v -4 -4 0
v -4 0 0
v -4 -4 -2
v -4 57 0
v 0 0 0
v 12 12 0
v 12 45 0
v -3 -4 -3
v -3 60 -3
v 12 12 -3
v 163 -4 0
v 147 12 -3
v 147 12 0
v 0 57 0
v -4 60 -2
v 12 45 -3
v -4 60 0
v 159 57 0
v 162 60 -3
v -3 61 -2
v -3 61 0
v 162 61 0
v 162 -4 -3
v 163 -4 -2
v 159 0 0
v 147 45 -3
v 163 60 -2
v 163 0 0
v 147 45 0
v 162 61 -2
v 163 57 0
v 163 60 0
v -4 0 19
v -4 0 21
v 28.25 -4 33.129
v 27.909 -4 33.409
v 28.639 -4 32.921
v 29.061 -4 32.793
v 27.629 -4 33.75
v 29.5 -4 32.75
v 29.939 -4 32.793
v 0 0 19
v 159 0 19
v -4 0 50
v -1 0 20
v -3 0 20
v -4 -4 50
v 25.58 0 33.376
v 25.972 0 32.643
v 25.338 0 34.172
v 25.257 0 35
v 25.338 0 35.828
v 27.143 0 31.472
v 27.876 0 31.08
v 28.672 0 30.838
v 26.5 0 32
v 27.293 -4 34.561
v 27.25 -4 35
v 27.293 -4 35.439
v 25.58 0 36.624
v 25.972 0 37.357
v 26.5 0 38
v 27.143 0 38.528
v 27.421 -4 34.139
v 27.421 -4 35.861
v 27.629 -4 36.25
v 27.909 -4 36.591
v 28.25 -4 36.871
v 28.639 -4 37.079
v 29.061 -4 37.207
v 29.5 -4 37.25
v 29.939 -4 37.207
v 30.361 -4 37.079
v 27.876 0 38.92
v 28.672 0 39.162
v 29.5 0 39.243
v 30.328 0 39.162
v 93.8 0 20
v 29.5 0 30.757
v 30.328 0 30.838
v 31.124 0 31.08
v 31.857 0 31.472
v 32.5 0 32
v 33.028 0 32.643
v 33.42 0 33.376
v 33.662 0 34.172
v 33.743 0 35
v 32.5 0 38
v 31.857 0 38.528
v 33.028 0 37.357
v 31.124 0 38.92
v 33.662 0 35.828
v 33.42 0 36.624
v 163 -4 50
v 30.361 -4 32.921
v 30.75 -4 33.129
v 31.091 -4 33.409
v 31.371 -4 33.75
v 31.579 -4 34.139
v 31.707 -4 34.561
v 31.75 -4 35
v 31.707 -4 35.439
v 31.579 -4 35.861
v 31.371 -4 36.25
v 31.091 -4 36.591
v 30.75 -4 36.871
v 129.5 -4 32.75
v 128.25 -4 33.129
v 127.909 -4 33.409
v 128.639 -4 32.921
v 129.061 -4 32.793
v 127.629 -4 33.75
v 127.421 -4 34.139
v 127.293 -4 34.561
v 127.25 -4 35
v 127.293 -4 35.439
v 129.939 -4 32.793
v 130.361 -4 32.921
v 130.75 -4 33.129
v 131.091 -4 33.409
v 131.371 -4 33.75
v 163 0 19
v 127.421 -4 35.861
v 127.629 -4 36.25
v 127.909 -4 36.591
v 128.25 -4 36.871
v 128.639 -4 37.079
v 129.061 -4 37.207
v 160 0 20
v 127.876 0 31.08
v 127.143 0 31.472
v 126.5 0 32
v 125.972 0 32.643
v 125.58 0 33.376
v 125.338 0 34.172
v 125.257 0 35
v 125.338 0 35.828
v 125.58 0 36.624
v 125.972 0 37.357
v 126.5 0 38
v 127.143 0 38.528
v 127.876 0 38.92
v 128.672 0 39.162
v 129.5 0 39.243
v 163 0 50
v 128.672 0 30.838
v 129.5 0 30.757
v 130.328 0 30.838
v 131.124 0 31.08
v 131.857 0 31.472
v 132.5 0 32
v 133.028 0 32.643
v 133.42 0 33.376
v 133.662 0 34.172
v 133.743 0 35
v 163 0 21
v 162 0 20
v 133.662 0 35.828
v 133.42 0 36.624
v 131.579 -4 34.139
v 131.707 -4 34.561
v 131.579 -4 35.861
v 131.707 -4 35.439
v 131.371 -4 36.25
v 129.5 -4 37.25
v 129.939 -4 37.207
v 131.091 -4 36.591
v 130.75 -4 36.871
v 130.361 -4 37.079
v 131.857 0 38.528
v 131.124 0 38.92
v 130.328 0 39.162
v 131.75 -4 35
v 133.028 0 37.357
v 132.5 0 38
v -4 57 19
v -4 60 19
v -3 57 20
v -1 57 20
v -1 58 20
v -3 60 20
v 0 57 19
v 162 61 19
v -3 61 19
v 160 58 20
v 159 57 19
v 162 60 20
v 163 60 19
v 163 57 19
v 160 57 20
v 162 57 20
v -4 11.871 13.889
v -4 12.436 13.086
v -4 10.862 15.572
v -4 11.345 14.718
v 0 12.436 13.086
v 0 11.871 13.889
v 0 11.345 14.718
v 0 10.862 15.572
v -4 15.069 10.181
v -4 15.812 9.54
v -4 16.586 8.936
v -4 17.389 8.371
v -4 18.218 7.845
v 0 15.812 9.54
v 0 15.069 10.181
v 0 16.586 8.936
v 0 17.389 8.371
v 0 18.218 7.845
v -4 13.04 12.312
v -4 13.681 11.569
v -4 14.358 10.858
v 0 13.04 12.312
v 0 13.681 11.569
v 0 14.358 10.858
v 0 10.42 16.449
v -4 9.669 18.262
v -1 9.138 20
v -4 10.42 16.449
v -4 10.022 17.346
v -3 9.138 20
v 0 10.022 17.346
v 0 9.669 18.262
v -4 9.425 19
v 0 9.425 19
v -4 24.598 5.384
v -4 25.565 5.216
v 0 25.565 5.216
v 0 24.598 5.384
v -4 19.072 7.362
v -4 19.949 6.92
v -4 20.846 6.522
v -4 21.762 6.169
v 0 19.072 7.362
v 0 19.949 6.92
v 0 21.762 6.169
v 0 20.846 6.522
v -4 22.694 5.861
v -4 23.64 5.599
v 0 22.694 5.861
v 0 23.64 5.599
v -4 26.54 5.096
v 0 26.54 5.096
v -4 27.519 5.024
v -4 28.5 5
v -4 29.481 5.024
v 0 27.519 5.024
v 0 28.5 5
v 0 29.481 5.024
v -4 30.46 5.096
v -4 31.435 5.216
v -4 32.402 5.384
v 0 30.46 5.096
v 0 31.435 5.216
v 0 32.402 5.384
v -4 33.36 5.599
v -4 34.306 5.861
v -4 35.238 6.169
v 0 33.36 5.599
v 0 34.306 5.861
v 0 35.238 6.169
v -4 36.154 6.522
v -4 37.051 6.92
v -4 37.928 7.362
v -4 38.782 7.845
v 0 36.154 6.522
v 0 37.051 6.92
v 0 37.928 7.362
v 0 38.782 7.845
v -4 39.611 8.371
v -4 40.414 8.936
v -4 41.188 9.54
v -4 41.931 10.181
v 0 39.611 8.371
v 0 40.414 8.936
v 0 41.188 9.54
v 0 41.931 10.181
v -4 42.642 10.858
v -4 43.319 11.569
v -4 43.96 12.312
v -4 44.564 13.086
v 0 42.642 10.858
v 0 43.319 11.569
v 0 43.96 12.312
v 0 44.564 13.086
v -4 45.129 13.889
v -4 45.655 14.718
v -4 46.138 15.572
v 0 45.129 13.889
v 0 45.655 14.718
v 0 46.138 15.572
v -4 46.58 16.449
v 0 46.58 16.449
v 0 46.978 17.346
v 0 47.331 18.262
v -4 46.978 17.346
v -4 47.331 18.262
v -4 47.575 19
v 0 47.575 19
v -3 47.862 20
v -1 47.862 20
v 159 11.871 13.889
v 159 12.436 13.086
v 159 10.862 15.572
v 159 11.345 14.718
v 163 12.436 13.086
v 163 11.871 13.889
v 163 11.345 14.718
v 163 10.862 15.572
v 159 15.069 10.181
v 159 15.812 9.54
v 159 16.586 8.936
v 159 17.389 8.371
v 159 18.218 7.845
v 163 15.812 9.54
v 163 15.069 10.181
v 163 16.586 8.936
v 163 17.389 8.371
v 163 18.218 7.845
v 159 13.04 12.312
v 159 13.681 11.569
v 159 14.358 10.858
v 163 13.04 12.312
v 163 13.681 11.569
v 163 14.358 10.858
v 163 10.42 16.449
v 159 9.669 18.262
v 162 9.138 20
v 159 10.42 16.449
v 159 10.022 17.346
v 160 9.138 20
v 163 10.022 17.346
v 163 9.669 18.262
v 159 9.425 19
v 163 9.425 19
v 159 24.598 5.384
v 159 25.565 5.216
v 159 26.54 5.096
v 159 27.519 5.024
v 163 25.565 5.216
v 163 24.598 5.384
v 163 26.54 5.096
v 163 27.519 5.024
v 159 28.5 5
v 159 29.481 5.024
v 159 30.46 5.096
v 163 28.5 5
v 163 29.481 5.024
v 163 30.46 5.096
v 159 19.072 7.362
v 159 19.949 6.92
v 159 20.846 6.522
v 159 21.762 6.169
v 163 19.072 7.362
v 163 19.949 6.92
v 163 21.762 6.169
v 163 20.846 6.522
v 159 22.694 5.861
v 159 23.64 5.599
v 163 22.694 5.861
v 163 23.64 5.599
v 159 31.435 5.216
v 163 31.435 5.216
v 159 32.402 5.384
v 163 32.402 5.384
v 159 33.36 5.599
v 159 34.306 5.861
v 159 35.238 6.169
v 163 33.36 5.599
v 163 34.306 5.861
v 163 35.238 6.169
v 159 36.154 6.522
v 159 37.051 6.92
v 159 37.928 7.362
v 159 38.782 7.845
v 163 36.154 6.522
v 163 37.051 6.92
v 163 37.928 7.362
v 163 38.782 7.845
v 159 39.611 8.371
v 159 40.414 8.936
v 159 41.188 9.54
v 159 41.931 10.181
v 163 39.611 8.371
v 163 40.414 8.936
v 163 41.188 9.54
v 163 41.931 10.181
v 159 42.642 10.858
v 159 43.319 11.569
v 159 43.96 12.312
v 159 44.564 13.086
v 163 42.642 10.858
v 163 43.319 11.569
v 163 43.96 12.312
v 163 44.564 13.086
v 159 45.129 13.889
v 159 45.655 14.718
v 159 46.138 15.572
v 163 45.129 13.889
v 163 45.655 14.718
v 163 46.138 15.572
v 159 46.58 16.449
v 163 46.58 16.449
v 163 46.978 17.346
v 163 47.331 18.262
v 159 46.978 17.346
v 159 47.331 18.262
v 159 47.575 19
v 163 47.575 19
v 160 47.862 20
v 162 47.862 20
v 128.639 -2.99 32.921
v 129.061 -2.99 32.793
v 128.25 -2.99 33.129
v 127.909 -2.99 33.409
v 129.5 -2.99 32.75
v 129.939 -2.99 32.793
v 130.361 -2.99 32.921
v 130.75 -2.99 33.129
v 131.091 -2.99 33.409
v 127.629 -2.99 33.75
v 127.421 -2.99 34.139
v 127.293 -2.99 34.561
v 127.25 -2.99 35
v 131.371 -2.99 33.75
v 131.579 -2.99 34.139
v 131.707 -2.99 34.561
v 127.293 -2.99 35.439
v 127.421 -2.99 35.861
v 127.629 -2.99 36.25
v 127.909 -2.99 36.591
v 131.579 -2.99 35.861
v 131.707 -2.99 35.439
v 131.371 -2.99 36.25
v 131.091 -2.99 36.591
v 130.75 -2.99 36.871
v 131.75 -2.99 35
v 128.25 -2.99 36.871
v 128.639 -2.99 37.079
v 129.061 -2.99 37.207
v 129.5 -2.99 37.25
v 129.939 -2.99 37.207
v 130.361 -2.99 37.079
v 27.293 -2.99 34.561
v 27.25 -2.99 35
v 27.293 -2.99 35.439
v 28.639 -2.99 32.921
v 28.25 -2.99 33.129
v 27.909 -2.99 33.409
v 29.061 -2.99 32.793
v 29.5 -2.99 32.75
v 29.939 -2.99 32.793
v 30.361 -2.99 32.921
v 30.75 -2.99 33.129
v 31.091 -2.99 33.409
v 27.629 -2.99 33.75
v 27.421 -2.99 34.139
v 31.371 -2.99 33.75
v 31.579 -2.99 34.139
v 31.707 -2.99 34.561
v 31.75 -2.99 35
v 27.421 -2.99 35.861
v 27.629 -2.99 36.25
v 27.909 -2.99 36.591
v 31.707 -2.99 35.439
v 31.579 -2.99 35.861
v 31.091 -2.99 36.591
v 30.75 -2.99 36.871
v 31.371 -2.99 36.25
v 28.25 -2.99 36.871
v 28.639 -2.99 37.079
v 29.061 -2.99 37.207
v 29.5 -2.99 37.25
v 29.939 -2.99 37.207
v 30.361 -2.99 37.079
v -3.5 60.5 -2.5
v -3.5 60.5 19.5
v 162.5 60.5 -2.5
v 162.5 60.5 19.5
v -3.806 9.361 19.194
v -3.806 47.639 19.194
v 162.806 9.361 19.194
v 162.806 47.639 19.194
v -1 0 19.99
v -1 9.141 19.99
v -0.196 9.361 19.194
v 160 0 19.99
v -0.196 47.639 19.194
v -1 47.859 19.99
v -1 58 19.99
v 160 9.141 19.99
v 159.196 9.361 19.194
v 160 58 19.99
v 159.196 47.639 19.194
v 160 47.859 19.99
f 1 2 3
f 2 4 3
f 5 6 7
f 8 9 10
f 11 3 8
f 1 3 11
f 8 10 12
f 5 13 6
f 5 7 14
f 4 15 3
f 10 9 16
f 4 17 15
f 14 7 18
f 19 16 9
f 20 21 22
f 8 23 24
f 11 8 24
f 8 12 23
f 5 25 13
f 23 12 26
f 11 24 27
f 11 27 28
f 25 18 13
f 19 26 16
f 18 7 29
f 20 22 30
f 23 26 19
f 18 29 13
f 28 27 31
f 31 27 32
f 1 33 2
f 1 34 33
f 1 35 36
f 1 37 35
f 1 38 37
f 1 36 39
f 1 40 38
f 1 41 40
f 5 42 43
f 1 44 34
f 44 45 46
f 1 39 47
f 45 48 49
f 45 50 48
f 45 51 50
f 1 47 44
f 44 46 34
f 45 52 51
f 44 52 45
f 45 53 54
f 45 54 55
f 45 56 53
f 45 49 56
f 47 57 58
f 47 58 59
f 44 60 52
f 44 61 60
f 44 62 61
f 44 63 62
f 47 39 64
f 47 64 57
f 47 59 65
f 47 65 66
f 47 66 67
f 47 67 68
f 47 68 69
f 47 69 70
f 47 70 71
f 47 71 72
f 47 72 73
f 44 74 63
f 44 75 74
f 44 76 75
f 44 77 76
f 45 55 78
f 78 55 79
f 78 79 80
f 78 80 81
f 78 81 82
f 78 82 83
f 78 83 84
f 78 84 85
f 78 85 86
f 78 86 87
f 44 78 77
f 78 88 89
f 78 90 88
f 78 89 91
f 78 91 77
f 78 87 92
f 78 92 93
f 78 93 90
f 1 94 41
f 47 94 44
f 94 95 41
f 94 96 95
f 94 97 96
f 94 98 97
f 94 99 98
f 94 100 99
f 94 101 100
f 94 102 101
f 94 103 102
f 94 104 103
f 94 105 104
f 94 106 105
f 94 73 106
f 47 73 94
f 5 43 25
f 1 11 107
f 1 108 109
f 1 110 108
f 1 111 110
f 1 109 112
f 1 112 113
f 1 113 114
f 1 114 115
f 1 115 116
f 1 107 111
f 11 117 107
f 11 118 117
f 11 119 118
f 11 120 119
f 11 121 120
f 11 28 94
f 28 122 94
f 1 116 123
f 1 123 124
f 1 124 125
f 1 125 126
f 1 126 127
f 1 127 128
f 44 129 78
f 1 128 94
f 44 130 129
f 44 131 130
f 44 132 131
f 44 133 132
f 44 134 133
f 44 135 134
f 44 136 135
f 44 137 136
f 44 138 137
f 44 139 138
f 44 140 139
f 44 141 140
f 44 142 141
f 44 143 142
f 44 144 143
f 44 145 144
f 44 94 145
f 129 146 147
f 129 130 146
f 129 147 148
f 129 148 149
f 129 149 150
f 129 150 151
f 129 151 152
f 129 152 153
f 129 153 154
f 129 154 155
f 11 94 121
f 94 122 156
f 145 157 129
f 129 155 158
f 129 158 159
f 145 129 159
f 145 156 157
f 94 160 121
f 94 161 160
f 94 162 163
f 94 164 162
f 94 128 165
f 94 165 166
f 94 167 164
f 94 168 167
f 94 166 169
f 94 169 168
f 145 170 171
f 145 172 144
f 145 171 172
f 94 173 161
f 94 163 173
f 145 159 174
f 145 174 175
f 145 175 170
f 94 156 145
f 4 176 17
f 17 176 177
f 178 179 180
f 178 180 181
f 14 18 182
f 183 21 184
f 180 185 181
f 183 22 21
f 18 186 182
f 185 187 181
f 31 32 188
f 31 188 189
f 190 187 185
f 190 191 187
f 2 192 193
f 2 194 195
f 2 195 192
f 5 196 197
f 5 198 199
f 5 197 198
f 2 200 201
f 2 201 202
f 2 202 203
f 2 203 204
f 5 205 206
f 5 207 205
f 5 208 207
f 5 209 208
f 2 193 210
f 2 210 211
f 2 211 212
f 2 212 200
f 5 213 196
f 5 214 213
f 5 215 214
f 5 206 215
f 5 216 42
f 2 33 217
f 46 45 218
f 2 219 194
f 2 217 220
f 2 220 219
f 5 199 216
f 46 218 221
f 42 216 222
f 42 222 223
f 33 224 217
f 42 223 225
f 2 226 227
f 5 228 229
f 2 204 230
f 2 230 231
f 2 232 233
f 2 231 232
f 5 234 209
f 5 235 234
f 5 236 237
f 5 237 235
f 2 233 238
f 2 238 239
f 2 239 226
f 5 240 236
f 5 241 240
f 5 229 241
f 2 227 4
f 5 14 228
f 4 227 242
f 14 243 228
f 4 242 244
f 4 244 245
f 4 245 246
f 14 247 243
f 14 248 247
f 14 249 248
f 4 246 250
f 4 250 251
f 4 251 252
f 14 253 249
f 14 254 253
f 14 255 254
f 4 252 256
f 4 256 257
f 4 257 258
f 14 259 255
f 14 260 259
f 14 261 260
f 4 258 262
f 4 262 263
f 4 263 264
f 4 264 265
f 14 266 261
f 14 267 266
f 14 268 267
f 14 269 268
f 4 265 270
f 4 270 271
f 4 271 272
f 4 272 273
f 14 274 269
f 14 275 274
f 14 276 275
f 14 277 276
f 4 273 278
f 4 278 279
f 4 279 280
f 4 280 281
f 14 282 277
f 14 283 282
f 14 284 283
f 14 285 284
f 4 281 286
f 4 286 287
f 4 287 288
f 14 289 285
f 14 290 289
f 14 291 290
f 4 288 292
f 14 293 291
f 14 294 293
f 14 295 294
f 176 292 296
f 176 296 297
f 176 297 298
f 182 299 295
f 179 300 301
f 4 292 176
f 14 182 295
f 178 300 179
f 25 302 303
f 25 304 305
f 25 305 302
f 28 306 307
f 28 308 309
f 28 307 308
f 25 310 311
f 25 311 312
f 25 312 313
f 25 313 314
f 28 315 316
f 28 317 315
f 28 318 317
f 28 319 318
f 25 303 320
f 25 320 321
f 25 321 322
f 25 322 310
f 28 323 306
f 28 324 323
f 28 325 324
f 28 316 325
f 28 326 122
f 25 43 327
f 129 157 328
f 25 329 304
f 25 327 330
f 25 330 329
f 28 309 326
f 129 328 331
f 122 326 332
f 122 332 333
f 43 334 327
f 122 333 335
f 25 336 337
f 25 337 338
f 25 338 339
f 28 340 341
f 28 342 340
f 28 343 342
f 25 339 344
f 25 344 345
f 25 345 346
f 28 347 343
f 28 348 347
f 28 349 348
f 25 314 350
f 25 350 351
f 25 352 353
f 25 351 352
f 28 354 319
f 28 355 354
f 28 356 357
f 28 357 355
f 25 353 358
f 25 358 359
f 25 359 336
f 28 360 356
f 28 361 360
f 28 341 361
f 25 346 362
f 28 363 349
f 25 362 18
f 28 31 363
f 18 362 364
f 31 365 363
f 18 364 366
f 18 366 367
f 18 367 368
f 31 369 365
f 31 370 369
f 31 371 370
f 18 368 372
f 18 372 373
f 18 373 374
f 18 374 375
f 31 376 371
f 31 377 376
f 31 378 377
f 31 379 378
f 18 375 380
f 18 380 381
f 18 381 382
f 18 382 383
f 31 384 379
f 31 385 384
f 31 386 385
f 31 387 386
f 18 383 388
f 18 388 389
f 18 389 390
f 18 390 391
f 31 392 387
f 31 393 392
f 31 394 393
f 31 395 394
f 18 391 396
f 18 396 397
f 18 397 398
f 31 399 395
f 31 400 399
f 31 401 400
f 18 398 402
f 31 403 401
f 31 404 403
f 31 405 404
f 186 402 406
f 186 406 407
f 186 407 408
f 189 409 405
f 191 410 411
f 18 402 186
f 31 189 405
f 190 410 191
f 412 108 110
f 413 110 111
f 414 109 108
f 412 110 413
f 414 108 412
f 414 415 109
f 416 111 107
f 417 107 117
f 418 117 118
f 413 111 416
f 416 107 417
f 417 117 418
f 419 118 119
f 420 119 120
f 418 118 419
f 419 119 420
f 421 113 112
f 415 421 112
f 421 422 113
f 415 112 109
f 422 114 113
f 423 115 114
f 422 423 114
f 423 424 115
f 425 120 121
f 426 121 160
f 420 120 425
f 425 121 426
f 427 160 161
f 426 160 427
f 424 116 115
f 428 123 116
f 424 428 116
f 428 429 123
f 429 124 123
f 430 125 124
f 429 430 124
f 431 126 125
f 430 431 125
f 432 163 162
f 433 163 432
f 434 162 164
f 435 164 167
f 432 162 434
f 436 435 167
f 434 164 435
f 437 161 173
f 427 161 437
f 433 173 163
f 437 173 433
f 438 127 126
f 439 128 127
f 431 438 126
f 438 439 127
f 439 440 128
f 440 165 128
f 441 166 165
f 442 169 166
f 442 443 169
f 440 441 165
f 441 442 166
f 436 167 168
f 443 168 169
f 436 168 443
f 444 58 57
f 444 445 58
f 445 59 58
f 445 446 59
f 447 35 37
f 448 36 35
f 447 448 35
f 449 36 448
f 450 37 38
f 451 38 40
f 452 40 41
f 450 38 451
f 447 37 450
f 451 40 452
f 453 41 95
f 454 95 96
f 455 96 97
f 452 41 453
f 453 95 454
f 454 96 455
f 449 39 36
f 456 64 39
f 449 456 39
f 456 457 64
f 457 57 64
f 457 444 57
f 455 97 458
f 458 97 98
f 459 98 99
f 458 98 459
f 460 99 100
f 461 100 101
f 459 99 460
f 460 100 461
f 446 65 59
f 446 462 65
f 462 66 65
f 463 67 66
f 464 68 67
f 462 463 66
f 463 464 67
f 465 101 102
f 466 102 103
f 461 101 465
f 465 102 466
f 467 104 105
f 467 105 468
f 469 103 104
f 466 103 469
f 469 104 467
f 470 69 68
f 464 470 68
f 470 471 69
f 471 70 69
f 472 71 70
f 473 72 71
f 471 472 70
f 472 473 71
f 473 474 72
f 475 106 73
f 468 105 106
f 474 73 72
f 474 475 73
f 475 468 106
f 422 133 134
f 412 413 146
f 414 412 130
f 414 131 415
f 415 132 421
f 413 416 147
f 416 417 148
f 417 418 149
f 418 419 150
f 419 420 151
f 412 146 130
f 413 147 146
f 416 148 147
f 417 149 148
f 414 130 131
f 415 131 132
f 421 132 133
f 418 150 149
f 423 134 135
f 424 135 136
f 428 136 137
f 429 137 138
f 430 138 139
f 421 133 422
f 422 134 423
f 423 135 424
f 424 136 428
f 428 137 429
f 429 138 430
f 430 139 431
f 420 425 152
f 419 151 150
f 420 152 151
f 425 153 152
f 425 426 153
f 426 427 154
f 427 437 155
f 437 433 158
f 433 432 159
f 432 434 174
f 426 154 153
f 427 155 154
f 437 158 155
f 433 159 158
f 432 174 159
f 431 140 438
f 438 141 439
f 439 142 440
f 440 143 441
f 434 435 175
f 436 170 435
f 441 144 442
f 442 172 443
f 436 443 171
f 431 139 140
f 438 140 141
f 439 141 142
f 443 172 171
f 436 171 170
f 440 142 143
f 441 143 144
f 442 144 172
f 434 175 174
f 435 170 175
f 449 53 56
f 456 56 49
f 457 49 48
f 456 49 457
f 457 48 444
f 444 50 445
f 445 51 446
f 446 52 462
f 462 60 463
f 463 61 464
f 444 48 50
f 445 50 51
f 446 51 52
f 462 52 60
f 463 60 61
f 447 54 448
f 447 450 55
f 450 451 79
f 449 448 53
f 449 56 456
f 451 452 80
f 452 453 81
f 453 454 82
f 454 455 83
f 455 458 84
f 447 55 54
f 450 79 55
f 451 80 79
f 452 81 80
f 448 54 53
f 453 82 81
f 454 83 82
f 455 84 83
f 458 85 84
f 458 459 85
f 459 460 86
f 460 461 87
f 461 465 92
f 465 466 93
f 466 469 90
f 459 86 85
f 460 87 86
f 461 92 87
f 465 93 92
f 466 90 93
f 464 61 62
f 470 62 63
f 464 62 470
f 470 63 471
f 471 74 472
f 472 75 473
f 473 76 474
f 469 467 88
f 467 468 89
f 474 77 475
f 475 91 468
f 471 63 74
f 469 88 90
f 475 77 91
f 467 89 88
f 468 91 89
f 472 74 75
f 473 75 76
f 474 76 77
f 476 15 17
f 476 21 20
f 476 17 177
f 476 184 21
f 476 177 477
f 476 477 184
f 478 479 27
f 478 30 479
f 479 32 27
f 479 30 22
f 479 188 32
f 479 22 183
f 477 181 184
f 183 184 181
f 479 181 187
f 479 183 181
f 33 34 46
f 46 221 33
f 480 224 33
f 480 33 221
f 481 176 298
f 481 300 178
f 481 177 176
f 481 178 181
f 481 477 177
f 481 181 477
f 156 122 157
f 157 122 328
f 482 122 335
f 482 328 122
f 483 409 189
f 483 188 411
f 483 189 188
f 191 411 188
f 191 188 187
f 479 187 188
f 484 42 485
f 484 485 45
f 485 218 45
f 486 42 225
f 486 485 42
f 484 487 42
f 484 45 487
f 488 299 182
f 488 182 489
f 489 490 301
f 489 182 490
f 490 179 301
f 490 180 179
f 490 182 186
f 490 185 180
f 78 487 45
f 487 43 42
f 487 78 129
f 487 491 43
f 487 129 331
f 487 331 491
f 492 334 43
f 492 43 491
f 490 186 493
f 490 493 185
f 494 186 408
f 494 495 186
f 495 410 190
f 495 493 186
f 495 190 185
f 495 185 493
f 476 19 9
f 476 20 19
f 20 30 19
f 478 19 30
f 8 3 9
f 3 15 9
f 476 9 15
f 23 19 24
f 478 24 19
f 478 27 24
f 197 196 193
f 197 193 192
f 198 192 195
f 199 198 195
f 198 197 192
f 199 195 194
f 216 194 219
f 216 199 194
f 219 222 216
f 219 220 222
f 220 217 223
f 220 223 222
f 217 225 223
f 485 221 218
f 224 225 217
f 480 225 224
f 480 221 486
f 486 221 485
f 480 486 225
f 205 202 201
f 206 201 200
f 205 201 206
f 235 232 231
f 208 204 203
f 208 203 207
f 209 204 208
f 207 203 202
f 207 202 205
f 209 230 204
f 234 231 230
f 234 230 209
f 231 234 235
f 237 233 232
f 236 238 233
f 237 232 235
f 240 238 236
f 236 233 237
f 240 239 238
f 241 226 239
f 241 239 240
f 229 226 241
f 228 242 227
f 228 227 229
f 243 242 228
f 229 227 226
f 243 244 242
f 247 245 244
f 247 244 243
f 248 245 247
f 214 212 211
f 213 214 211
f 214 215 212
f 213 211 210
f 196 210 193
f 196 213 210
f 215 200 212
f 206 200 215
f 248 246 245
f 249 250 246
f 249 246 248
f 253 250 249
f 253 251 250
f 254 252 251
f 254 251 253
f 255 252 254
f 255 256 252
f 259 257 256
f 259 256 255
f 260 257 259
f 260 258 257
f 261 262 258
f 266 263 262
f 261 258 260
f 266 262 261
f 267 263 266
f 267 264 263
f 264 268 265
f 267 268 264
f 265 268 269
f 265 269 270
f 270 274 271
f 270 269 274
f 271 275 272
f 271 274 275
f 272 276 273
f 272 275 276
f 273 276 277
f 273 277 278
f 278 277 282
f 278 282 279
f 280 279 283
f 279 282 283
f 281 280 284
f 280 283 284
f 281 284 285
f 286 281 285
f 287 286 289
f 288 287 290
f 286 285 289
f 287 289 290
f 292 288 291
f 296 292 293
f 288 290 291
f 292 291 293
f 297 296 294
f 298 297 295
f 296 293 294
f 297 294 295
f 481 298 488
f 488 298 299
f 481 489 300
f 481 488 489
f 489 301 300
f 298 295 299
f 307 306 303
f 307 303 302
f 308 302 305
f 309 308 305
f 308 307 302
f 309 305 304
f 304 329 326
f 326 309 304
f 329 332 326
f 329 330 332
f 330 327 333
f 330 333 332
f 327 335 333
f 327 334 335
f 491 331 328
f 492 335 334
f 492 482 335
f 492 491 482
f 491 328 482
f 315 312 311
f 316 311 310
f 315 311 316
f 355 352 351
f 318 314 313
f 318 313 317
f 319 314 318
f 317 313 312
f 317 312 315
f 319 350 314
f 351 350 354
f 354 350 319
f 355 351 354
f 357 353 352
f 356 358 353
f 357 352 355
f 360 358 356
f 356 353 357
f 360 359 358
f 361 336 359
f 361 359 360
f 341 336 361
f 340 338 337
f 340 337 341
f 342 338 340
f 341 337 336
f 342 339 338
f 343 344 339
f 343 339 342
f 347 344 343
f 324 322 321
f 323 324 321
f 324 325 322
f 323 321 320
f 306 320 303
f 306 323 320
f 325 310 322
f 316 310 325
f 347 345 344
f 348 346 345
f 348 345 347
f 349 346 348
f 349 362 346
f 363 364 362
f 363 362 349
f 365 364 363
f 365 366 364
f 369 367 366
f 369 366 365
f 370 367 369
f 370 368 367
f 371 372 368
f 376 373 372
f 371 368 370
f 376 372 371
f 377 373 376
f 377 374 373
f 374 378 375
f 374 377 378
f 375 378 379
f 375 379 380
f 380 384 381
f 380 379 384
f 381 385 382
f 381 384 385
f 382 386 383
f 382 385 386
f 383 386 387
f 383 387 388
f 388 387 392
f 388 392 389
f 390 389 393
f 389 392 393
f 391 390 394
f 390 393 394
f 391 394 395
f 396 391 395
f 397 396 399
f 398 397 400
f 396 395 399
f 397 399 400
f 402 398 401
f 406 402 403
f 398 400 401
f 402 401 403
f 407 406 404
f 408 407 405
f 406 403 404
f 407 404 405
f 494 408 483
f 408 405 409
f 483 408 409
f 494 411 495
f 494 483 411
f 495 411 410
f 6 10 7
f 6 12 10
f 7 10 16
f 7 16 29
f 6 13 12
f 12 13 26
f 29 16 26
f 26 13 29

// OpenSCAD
// ==============================================================================
// EasyDrive Battery Charger Wall Mount
// File: EasyDrive-Charger-Holder.scad
// Version: v0.17
// Date: 2026-06-07
// Description: Minimalist horizontal wall mount for the EasyDrive battery charger.
// Features clean 1mm chamfers (phases) on outward-facing edges and front/side wall
// top entry edges. Uses an exact 0.01mm thickness 3D pyramid hull to create perfectly
// mitered inner chamfers at exactly 1.0mm height, while keeping the backplate 100% flat.
// Includes side recessions for ventilation, countersunk screw holes, and bottom cutout.
// ==============================================================================

/* [Charger Dimensions] */
// Width of the charger (left-to-right) in mm
charger_width = 157;
// Depth of the charger (front-to-back) in mm
charger_depth = 55;
// Height of the charger (top-to-bottom) in mm
charger_height = 76;

/* [Holder Settings] */
// Height of the pocket holding the charger (how deep it sits) in mm
pocket_height = 20;
// Tolerance clearance around the charger (added to inner width and depth) in mm
clearance = 1.0;
// Wall thickness of the holder in mm
wall_thickness = 4.0;
// Thickness of the bottom support plate in mm
bottom_thickness = 3.0;
// Chamfer (phase) size for outward-facing edges in mm
chamfer_size = 1.0;

/* [Wall Mounting] */
// Total height of the back plate in mm (should be higher than pocket_height)
back_wall_height = 50;
// Diameter of the screw shaft in mm (typically 4mm wood/drywall screws)
screw_diameter = 4.0;
// Diameter of the countersunk screw head in mm
screw_head_diameter = 8.0;
// Depth of the countersink taper in mm
screw_countersink_depth = 3.0;
// Spacing of the two wall screws (center-to-center distance) in mm
screw_spacing = 100;

/* [Ventilation and Recessions] */
// Enable circular cutouts on both side walls to prevent blocking vents
enable_side_recessions = true;
// Radius of the side wall ventilation cutouts in mm
side_recession_radius = 20;
// Vertical offset of the cutout center relative to the top of side walls (pocket_height)
// Positive values move the center up, leaving more wall at the bottom of the pocket.
side_recession_z_offset = 5;

// Enable a large ventilation/material-saving cutout in the bottom plate
enable_bottom_cutout = true;
// Margin of solid material left around the bottom plate cutout in mm
bottom_margin = 12;

/* [Preview Options] */
// Show a translucent ghost representation of the charger for visualization
show_charger_mockup = true;

// ==============================================================================
// CALCULATED CONSTANTS
// ==============================================================================
W_inner = charger_width + 2 * clearance;
D_inner = charger_depth + 2 * clearance;
W_outer = W_inner + 2 * wall_thickness;
D_outer = D_inner + 2 * wall_thickness;

// ==============================================================================
// MAIN MODULE CALL
// ==============================================================================
easy_drive_charger_mount();

// ==============================================================================
// CORE MODULES
// ==============================================================================

module easy_drive_charger_mount() {
    // Center-to-center spacing capped safely to fit within the backplate width
    actual_screw_spacing = min(screw_spacing, W_inner - screw_head_diameter - 4);

    difference() {
        // --- positive volume (solid blocks with perfect, groove-free joints) ---
        union() {
            // 1. Bottom plate
            translate([-wall_thickness, -wall_thickness, -bottom_thickness])
            cube([W_outer, D_outer, bottom_thickness]);

            // 2. Back wall
            translate([-wall_thickness, -wall_thickness, 0])
            cube([W_outer, wall_thickness, back_wall_height]);

            // 3. Front wall
            translate([-wall_thickness, D_inner, 0])
            cube([W_outer, wall_thickness, pocket_height]);

            // 4. Left wall
            translate([-wall_thickness, 0, 0])
            cube([wall_thickness, D_inner, pocket_height]);

            // 5. Right wall
            translate([W_inner, 0, 0])
            cube([wall_thickness, D_inner, pocket_height]);
        }

        // --- negative volume (subtractions) ---

        // 1. Screw holes on the back wall
        translate([W_inner/2 - actual_screw_spacing/2, 0, pocket_height + (back_wall_height - pocket_height)/2])
        countersunk_screw();

        translate([W_inner/2 + actual_screw_spacing/2, 0, pocket_height + (back_wall_height - pocket_height)/2])
        countersunk_screw();

        // 2. Side recessions for ventilator/exhaust vents
        if (enable_side_recessions) {
            // Center recession cylinder along depth (Y) and offset in height (Z)
            translate([-wall_thickness - 1, D_inner / 2, pocket_height + side_recession_z_offset])
            rotate([0, 90, 0])
            cylinder(r = side_recession_radius, h = W_outer + 2, $fn = 128);
        }

        // 3. Bottom plate cutout (ventilation & material saving)
        if (enable_bottom_cutout && (W_inner > 2 * bottom_margin) && (D_inner > 2 * bottom_margin)) {
            translate([bottom_margin, bottom_margin, -bottom_thickness - 1])
            cube([W_inner - 2 * bottom_margin, D_inner - 2 * bottom_margin, bottom_thickness + 2]);
        }

        // 4. CHAMFERS (PHASES) ON OUTWARD-FACING EDGES ONLY
        if (chamfer_size > 0) {
            let (c = chamfer_size, s2 = sqrt(2) * chamfer_size) {
                // --- Vertical front corners (Z-axis) ---
                // Front-left corner
                translate([-wall_thickness, D_inner + wall_thickness, (pocket_height - bottom_thickness)/2])
                rotate([0, 0, 45])
                cube([s2, s2, pocket_height + bottom_thickness + 2], center=true);

                // Front-right corner
                translate([W_inner + wall_thickness, D_inner + wall_thickness, (pocket_height - bottom_thickness)/2])
                rotate([0, 0, 45])
                cube([s2, s2, pocket_height + bottom_thickness + 2], center=true);

                // --- Top rim horizontal edges (X/Y axes) ---
                // Top-front edge (X-axis)
                translate([W_inner/2, D_inner + wall_thickness, pocket_height])
                rotate([45, 0, 0])
                cube([W_outer + 2, s2, s2], center=true);

                // Top-left edge (Y-axis) - starts exactly at Y=0 to avoid cutting into the back wall
                translate([-wall_thickness, (D_inner + wall_thickness + 1)/2, pocket_height])
                rotate([0, 45, 0])
                cube([s2, D_inner + wall_thickness + 1, s2], center=true);

                // Top-right edge (Y-axis) - starts exactly at Y=0 to avoid cutting into the back wall
                translate([W_inner + wall_thickness, (D_inner + wall_thickness + 1)/2, pocket_height])
                rotate([0, 45, 0])
                cube([s2, D_inner + wall_thickness + 1, s2], center=true);

                // --- Top pocket-facing entry edges (X/Y axes) ---
                // Single 3-sided tapered wedge hull that creates perfectly mitered inner chamfers
                // on the front, left, and right inside walls, while keeping the back wall 100% flat.
                // Uses 0.01mm sheets to ensure the chamfer height is exactly c (no step offsets).
                hull() {
                    translate([0, 0, pocket_height - c])
                    cube([W_inner, D_inner, 0.01]);

                    translate([-c, 0, pocket_height - 0.01])
                    cube([W_inner + 2 * c, D_inner + c, 0.01]);
                }

                // --- Bottom plate horizontal edges (X/Y axes) ---
                // Bottom-front edge (X-axis)
                translate([W_inner/2, D_inner + wall_thickness, -bottom_thickness])
                rotate([45, 0, 0])
                cube([W_outer + 2, s2, s2], center=true);

                // Bottom-left edge (Y-axis) - runs exactly to the wall face (Y=-wall_thickness) but not beyond
                translate([-wall_thickness, (D_inner + 1)/2, -bottom_thickness])
                rotate([0, 45, 0])
                cube([s2, D_inner + 2 * wall_thickness + 1, s2], center=true);

                // Bottom-right edge (Y-axis) - runs exactly to the wall face (Y=-wall_thickness) but not beyond
                translate([W_inner + wall_thickness, (D_inner + 1)/2, -bottom_thickness])
                rotate([0, 45, 0])
                cube([s2, D_inner + 2 * wall_thickness + 1, s2], center=true);
            }
        }
    }

    // --- charger mockup preview (non-printed) ---
    if (show_charger_mockup) {
        %translate([clearance, clearance, 0])
        cube([charger_width, charger_depth, charger_height]);
    }
}

// ==============================================================================
// HELPERS
// ==============================================================================

// Countersunk screw cutout (points in negative Y-direction)
module countersunk_screw() {
    // Screw shaft (slightly oversized for clearance)
    translate([0, 1, 0])
    rotate([90, 0, 0])
    cylinder(d = screw_diameter + 0.5, h = wall_thickness + 2, $fn = 32);

    // Countersink cone starting at Y=0.01 and going backwards
    translate([0, 0.01, 0])
    rotate([90, 0, 0])
    cylinder(d1 = screw_head_diameter + 0.5, d2 = screw_diameter + 0.5, h = screw_countersink_depth, $fn = 32);
}
